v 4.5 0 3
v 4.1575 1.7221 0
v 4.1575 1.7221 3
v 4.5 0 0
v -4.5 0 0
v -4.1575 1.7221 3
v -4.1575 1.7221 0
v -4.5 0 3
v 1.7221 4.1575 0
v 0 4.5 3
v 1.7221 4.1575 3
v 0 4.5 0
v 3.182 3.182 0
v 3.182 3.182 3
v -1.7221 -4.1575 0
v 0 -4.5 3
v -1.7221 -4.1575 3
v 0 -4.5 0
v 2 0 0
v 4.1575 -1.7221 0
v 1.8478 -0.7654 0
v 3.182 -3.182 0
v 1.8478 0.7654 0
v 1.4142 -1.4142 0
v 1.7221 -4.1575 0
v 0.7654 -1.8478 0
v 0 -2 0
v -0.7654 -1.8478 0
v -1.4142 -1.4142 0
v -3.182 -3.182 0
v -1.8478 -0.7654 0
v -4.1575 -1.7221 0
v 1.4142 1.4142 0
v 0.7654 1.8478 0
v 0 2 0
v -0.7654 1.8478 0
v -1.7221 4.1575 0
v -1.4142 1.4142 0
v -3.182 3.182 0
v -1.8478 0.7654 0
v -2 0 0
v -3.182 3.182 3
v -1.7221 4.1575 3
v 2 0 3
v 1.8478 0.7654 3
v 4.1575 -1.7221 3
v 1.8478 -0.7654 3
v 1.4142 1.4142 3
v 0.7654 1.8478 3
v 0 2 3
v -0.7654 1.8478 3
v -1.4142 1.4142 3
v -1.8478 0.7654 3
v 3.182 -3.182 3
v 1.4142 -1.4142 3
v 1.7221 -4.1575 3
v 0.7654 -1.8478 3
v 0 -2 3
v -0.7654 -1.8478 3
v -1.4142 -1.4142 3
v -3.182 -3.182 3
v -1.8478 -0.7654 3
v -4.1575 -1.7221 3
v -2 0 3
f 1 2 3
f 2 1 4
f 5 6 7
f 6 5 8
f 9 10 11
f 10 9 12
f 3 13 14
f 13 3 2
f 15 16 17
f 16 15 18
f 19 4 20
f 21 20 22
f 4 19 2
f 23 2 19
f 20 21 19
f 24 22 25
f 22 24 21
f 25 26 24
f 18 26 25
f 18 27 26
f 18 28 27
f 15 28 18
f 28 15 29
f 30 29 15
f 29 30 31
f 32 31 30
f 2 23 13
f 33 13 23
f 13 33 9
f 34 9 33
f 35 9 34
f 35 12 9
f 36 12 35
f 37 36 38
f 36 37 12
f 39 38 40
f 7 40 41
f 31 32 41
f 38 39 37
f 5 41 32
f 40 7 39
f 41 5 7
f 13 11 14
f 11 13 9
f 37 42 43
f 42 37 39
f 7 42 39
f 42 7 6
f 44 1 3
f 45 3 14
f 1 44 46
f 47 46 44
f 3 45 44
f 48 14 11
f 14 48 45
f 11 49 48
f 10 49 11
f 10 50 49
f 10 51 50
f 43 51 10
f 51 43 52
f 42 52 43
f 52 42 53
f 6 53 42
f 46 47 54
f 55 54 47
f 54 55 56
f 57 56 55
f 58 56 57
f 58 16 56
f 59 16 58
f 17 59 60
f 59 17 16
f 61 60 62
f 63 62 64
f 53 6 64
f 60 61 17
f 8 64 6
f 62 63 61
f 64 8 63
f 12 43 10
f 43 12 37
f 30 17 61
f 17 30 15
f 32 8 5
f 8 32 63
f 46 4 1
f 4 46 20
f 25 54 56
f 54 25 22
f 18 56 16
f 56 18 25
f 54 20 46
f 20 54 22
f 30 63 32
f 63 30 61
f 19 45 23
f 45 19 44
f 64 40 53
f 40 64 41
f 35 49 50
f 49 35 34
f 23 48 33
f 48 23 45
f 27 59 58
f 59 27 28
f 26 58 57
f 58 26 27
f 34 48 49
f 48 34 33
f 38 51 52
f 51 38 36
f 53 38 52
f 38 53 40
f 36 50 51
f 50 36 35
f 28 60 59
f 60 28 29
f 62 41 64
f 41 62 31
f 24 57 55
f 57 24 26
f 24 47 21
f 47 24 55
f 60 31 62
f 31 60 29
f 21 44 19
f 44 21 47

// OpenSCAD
r = 4.5;
id = 4;
h = 3;

$fn = 16;

difference() {
cylinder(h=h,r=r);
translate([0,0,-1])
cylinder(h=h+2,d=id);
}
